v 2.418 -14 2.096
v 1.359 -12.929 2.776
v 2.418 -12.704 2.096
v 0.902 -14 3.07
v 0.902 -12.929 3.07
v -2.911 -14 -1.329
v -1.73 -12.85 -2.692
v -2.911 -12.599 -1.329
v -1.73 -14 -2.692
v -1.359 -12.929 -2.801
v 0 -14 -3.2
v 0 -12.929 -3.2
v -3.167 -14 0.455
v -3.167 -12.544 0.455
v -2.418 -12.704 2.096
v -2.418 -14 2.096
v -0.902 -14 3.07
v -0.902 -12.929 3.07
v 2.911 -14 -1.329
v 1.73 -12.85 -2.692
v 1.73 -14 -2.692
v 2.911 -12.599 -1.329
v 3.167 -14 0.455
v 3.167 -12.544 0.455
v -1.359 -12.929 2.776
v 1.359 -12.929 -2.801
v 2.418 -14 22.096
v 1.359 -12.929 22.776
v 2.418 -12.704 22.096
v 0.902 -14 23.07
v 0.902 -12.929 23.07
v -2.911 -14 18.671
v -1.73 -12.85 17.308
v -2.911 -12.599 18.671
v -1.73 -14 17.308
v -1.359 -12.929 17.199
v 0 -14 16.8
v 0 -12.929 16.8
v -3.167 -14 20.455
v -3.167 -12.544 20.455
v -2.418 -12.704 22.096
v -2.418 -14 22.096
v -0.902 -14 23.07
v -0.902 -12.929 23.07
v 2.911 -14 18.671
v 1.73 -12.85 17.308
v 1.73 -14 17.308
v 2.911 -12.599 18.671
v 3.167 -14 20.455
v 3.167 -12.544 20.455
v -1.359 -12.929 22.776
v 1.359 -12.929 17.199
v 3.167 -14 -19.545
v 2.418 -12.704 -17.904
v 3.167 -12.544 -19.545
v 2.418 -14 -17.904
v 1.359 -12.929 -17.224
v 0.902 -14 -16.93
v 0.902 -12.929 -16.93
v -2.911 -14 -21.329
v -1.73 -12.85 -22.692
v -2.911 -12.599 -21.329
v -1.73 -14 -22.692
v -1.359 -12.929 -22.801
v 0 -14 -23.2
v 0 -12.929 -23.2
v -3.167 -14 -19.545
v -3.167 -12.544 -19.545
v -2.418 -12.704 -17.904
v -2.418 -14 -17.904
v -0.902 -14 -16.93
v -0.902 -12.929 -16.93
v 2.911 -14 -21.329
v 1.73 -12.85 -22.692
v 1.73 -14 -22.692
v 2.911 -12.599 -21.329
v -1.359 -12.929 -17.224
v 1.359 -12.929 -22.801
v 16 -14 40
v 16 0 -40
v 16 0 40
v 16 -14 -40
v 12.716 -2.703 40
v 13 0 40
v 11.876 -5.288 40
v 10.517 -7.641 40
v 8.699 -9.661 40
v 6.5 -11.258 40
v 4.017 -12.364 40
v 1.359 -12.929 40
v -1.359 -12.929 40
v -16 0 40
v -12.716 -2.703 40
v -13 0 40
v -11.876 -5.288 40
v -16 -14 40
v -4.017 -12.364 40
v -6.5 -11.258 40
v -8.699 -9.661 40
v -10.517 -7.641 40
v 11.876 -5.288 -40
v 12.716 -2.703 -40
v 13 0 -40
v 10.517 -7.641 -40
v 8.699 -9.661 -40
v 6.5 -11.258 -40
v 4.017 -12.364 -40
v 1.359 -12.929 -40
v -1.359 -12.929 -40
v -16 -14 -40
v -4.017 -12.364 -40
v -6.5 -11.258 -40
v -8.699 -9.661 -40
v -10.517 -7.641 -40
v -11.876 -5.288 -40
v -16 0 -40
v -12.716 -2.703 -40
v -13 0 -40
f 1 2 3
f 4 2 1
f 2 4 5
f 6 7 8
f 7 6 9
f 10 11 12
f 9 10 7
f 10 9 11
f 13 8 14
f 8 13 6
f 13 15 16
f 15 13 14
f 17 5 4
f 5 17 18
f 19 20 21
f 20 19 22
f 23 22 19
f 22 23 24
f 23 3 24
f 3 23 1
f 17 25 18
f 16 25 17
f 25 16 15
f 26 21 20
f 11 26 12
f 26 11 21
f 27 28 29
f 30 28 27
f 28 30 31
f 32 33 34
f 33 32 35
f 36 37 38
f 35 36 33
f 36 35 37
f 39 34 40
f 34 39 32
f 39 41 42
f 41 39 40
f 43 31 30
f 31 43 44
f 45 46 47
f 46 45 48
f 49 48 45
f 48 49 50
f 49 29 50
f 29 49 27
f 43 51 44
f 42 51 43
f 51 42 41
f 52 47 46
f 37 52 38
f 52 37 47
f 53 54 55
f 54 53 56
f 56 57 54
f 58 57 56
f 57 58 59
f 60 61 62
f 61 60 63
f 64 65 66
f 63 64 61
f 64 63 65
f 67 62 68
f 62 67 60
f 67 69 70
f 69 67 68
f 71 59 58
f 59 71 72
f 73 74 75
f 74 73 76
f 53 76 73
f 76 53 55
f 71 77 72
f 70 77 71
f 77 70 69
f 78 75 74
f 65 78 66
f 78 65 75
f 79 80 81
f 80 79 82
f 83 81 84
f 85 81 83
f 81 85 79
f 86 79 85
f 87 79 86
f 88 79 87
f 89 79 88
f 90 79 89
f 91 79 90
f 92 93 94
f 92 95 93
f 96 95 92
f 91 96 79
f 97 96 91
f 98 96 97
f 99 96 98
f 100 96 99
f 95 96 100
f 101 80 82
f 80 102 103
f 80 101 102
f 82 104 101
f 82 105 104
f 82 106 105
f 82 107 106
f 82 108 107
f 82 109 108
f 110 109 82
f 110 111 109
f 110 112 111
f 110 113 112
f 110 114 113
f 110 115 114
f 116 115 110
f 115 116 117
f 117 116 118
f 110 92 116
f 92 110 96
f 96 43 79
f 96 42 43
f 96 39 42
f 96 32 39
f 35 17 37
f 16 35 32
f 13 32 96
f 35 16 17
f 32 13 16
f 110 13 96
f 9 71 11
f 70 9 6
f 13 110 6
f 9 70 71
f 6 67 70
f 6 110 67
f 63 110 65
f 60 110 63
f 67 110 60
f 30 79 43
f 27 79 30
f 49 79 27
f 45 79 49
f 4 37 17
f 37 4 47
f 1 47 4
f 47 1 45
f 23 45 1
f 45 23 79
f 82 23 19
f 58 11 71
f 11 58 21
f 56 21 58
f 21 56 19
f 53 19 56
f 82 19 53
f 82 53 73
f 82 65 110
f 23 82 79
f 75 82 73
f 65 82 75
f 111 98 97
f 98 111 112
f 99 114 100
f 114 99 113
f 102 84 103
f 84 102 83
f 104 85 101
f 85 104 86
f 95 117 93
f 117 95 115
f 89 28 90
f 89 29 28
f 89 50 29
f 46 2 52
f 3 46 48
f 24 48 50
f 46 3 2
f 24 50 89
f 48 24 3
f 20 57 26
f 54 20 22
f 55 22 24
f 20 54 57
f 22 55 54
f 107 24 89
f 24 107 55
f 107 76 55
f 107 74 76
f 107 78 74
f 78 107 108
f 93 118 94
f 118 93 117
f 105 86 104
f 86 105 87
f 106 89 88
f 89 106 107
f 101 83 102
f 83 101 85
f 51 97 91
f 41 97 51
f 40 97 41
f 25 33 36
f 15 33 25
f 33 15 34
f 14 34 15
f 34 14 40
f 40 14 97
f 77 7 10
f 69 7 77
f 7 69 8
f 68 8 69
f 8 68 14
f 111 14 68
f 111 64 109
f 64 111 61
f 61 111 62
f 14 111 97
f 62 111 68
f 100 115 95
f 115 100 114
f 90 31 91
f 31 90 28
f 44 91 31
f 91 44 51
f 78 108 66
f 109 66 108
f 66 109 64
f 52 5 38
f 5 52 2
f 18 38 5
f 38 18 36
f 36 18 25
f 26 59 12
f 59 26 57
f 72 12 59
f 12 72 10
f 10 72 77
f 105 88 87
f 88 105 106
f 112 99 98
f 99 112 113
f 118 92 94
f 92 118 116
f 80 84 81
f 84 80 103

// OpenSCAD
pipediameter=26;
minthickness=1;
holediameter=6.4;
cubey=pipediameter+minthickness+minthickness;

difference(){
    cube([32,cubey,80],center = true);
    cylinder(h=82,d=pipediameter,center = true);
    group(){ 
        translate([0,0,0])  rotate([0,90,90]) cylinder(h=40,d=holediameter,center = true);
        translate([0,0,20]) rotate([0,90,90]) cylinder(h=40,d=holediameter,center = true);
        translate([0,0,-20])rotate([0,90,90]) cylinder(h=40,d=holediameter,center = true);
    }
    translate([0,(cubey+.1)/2,0])cube([32.1,cubey+.1,80.1],center = true);
}
    
